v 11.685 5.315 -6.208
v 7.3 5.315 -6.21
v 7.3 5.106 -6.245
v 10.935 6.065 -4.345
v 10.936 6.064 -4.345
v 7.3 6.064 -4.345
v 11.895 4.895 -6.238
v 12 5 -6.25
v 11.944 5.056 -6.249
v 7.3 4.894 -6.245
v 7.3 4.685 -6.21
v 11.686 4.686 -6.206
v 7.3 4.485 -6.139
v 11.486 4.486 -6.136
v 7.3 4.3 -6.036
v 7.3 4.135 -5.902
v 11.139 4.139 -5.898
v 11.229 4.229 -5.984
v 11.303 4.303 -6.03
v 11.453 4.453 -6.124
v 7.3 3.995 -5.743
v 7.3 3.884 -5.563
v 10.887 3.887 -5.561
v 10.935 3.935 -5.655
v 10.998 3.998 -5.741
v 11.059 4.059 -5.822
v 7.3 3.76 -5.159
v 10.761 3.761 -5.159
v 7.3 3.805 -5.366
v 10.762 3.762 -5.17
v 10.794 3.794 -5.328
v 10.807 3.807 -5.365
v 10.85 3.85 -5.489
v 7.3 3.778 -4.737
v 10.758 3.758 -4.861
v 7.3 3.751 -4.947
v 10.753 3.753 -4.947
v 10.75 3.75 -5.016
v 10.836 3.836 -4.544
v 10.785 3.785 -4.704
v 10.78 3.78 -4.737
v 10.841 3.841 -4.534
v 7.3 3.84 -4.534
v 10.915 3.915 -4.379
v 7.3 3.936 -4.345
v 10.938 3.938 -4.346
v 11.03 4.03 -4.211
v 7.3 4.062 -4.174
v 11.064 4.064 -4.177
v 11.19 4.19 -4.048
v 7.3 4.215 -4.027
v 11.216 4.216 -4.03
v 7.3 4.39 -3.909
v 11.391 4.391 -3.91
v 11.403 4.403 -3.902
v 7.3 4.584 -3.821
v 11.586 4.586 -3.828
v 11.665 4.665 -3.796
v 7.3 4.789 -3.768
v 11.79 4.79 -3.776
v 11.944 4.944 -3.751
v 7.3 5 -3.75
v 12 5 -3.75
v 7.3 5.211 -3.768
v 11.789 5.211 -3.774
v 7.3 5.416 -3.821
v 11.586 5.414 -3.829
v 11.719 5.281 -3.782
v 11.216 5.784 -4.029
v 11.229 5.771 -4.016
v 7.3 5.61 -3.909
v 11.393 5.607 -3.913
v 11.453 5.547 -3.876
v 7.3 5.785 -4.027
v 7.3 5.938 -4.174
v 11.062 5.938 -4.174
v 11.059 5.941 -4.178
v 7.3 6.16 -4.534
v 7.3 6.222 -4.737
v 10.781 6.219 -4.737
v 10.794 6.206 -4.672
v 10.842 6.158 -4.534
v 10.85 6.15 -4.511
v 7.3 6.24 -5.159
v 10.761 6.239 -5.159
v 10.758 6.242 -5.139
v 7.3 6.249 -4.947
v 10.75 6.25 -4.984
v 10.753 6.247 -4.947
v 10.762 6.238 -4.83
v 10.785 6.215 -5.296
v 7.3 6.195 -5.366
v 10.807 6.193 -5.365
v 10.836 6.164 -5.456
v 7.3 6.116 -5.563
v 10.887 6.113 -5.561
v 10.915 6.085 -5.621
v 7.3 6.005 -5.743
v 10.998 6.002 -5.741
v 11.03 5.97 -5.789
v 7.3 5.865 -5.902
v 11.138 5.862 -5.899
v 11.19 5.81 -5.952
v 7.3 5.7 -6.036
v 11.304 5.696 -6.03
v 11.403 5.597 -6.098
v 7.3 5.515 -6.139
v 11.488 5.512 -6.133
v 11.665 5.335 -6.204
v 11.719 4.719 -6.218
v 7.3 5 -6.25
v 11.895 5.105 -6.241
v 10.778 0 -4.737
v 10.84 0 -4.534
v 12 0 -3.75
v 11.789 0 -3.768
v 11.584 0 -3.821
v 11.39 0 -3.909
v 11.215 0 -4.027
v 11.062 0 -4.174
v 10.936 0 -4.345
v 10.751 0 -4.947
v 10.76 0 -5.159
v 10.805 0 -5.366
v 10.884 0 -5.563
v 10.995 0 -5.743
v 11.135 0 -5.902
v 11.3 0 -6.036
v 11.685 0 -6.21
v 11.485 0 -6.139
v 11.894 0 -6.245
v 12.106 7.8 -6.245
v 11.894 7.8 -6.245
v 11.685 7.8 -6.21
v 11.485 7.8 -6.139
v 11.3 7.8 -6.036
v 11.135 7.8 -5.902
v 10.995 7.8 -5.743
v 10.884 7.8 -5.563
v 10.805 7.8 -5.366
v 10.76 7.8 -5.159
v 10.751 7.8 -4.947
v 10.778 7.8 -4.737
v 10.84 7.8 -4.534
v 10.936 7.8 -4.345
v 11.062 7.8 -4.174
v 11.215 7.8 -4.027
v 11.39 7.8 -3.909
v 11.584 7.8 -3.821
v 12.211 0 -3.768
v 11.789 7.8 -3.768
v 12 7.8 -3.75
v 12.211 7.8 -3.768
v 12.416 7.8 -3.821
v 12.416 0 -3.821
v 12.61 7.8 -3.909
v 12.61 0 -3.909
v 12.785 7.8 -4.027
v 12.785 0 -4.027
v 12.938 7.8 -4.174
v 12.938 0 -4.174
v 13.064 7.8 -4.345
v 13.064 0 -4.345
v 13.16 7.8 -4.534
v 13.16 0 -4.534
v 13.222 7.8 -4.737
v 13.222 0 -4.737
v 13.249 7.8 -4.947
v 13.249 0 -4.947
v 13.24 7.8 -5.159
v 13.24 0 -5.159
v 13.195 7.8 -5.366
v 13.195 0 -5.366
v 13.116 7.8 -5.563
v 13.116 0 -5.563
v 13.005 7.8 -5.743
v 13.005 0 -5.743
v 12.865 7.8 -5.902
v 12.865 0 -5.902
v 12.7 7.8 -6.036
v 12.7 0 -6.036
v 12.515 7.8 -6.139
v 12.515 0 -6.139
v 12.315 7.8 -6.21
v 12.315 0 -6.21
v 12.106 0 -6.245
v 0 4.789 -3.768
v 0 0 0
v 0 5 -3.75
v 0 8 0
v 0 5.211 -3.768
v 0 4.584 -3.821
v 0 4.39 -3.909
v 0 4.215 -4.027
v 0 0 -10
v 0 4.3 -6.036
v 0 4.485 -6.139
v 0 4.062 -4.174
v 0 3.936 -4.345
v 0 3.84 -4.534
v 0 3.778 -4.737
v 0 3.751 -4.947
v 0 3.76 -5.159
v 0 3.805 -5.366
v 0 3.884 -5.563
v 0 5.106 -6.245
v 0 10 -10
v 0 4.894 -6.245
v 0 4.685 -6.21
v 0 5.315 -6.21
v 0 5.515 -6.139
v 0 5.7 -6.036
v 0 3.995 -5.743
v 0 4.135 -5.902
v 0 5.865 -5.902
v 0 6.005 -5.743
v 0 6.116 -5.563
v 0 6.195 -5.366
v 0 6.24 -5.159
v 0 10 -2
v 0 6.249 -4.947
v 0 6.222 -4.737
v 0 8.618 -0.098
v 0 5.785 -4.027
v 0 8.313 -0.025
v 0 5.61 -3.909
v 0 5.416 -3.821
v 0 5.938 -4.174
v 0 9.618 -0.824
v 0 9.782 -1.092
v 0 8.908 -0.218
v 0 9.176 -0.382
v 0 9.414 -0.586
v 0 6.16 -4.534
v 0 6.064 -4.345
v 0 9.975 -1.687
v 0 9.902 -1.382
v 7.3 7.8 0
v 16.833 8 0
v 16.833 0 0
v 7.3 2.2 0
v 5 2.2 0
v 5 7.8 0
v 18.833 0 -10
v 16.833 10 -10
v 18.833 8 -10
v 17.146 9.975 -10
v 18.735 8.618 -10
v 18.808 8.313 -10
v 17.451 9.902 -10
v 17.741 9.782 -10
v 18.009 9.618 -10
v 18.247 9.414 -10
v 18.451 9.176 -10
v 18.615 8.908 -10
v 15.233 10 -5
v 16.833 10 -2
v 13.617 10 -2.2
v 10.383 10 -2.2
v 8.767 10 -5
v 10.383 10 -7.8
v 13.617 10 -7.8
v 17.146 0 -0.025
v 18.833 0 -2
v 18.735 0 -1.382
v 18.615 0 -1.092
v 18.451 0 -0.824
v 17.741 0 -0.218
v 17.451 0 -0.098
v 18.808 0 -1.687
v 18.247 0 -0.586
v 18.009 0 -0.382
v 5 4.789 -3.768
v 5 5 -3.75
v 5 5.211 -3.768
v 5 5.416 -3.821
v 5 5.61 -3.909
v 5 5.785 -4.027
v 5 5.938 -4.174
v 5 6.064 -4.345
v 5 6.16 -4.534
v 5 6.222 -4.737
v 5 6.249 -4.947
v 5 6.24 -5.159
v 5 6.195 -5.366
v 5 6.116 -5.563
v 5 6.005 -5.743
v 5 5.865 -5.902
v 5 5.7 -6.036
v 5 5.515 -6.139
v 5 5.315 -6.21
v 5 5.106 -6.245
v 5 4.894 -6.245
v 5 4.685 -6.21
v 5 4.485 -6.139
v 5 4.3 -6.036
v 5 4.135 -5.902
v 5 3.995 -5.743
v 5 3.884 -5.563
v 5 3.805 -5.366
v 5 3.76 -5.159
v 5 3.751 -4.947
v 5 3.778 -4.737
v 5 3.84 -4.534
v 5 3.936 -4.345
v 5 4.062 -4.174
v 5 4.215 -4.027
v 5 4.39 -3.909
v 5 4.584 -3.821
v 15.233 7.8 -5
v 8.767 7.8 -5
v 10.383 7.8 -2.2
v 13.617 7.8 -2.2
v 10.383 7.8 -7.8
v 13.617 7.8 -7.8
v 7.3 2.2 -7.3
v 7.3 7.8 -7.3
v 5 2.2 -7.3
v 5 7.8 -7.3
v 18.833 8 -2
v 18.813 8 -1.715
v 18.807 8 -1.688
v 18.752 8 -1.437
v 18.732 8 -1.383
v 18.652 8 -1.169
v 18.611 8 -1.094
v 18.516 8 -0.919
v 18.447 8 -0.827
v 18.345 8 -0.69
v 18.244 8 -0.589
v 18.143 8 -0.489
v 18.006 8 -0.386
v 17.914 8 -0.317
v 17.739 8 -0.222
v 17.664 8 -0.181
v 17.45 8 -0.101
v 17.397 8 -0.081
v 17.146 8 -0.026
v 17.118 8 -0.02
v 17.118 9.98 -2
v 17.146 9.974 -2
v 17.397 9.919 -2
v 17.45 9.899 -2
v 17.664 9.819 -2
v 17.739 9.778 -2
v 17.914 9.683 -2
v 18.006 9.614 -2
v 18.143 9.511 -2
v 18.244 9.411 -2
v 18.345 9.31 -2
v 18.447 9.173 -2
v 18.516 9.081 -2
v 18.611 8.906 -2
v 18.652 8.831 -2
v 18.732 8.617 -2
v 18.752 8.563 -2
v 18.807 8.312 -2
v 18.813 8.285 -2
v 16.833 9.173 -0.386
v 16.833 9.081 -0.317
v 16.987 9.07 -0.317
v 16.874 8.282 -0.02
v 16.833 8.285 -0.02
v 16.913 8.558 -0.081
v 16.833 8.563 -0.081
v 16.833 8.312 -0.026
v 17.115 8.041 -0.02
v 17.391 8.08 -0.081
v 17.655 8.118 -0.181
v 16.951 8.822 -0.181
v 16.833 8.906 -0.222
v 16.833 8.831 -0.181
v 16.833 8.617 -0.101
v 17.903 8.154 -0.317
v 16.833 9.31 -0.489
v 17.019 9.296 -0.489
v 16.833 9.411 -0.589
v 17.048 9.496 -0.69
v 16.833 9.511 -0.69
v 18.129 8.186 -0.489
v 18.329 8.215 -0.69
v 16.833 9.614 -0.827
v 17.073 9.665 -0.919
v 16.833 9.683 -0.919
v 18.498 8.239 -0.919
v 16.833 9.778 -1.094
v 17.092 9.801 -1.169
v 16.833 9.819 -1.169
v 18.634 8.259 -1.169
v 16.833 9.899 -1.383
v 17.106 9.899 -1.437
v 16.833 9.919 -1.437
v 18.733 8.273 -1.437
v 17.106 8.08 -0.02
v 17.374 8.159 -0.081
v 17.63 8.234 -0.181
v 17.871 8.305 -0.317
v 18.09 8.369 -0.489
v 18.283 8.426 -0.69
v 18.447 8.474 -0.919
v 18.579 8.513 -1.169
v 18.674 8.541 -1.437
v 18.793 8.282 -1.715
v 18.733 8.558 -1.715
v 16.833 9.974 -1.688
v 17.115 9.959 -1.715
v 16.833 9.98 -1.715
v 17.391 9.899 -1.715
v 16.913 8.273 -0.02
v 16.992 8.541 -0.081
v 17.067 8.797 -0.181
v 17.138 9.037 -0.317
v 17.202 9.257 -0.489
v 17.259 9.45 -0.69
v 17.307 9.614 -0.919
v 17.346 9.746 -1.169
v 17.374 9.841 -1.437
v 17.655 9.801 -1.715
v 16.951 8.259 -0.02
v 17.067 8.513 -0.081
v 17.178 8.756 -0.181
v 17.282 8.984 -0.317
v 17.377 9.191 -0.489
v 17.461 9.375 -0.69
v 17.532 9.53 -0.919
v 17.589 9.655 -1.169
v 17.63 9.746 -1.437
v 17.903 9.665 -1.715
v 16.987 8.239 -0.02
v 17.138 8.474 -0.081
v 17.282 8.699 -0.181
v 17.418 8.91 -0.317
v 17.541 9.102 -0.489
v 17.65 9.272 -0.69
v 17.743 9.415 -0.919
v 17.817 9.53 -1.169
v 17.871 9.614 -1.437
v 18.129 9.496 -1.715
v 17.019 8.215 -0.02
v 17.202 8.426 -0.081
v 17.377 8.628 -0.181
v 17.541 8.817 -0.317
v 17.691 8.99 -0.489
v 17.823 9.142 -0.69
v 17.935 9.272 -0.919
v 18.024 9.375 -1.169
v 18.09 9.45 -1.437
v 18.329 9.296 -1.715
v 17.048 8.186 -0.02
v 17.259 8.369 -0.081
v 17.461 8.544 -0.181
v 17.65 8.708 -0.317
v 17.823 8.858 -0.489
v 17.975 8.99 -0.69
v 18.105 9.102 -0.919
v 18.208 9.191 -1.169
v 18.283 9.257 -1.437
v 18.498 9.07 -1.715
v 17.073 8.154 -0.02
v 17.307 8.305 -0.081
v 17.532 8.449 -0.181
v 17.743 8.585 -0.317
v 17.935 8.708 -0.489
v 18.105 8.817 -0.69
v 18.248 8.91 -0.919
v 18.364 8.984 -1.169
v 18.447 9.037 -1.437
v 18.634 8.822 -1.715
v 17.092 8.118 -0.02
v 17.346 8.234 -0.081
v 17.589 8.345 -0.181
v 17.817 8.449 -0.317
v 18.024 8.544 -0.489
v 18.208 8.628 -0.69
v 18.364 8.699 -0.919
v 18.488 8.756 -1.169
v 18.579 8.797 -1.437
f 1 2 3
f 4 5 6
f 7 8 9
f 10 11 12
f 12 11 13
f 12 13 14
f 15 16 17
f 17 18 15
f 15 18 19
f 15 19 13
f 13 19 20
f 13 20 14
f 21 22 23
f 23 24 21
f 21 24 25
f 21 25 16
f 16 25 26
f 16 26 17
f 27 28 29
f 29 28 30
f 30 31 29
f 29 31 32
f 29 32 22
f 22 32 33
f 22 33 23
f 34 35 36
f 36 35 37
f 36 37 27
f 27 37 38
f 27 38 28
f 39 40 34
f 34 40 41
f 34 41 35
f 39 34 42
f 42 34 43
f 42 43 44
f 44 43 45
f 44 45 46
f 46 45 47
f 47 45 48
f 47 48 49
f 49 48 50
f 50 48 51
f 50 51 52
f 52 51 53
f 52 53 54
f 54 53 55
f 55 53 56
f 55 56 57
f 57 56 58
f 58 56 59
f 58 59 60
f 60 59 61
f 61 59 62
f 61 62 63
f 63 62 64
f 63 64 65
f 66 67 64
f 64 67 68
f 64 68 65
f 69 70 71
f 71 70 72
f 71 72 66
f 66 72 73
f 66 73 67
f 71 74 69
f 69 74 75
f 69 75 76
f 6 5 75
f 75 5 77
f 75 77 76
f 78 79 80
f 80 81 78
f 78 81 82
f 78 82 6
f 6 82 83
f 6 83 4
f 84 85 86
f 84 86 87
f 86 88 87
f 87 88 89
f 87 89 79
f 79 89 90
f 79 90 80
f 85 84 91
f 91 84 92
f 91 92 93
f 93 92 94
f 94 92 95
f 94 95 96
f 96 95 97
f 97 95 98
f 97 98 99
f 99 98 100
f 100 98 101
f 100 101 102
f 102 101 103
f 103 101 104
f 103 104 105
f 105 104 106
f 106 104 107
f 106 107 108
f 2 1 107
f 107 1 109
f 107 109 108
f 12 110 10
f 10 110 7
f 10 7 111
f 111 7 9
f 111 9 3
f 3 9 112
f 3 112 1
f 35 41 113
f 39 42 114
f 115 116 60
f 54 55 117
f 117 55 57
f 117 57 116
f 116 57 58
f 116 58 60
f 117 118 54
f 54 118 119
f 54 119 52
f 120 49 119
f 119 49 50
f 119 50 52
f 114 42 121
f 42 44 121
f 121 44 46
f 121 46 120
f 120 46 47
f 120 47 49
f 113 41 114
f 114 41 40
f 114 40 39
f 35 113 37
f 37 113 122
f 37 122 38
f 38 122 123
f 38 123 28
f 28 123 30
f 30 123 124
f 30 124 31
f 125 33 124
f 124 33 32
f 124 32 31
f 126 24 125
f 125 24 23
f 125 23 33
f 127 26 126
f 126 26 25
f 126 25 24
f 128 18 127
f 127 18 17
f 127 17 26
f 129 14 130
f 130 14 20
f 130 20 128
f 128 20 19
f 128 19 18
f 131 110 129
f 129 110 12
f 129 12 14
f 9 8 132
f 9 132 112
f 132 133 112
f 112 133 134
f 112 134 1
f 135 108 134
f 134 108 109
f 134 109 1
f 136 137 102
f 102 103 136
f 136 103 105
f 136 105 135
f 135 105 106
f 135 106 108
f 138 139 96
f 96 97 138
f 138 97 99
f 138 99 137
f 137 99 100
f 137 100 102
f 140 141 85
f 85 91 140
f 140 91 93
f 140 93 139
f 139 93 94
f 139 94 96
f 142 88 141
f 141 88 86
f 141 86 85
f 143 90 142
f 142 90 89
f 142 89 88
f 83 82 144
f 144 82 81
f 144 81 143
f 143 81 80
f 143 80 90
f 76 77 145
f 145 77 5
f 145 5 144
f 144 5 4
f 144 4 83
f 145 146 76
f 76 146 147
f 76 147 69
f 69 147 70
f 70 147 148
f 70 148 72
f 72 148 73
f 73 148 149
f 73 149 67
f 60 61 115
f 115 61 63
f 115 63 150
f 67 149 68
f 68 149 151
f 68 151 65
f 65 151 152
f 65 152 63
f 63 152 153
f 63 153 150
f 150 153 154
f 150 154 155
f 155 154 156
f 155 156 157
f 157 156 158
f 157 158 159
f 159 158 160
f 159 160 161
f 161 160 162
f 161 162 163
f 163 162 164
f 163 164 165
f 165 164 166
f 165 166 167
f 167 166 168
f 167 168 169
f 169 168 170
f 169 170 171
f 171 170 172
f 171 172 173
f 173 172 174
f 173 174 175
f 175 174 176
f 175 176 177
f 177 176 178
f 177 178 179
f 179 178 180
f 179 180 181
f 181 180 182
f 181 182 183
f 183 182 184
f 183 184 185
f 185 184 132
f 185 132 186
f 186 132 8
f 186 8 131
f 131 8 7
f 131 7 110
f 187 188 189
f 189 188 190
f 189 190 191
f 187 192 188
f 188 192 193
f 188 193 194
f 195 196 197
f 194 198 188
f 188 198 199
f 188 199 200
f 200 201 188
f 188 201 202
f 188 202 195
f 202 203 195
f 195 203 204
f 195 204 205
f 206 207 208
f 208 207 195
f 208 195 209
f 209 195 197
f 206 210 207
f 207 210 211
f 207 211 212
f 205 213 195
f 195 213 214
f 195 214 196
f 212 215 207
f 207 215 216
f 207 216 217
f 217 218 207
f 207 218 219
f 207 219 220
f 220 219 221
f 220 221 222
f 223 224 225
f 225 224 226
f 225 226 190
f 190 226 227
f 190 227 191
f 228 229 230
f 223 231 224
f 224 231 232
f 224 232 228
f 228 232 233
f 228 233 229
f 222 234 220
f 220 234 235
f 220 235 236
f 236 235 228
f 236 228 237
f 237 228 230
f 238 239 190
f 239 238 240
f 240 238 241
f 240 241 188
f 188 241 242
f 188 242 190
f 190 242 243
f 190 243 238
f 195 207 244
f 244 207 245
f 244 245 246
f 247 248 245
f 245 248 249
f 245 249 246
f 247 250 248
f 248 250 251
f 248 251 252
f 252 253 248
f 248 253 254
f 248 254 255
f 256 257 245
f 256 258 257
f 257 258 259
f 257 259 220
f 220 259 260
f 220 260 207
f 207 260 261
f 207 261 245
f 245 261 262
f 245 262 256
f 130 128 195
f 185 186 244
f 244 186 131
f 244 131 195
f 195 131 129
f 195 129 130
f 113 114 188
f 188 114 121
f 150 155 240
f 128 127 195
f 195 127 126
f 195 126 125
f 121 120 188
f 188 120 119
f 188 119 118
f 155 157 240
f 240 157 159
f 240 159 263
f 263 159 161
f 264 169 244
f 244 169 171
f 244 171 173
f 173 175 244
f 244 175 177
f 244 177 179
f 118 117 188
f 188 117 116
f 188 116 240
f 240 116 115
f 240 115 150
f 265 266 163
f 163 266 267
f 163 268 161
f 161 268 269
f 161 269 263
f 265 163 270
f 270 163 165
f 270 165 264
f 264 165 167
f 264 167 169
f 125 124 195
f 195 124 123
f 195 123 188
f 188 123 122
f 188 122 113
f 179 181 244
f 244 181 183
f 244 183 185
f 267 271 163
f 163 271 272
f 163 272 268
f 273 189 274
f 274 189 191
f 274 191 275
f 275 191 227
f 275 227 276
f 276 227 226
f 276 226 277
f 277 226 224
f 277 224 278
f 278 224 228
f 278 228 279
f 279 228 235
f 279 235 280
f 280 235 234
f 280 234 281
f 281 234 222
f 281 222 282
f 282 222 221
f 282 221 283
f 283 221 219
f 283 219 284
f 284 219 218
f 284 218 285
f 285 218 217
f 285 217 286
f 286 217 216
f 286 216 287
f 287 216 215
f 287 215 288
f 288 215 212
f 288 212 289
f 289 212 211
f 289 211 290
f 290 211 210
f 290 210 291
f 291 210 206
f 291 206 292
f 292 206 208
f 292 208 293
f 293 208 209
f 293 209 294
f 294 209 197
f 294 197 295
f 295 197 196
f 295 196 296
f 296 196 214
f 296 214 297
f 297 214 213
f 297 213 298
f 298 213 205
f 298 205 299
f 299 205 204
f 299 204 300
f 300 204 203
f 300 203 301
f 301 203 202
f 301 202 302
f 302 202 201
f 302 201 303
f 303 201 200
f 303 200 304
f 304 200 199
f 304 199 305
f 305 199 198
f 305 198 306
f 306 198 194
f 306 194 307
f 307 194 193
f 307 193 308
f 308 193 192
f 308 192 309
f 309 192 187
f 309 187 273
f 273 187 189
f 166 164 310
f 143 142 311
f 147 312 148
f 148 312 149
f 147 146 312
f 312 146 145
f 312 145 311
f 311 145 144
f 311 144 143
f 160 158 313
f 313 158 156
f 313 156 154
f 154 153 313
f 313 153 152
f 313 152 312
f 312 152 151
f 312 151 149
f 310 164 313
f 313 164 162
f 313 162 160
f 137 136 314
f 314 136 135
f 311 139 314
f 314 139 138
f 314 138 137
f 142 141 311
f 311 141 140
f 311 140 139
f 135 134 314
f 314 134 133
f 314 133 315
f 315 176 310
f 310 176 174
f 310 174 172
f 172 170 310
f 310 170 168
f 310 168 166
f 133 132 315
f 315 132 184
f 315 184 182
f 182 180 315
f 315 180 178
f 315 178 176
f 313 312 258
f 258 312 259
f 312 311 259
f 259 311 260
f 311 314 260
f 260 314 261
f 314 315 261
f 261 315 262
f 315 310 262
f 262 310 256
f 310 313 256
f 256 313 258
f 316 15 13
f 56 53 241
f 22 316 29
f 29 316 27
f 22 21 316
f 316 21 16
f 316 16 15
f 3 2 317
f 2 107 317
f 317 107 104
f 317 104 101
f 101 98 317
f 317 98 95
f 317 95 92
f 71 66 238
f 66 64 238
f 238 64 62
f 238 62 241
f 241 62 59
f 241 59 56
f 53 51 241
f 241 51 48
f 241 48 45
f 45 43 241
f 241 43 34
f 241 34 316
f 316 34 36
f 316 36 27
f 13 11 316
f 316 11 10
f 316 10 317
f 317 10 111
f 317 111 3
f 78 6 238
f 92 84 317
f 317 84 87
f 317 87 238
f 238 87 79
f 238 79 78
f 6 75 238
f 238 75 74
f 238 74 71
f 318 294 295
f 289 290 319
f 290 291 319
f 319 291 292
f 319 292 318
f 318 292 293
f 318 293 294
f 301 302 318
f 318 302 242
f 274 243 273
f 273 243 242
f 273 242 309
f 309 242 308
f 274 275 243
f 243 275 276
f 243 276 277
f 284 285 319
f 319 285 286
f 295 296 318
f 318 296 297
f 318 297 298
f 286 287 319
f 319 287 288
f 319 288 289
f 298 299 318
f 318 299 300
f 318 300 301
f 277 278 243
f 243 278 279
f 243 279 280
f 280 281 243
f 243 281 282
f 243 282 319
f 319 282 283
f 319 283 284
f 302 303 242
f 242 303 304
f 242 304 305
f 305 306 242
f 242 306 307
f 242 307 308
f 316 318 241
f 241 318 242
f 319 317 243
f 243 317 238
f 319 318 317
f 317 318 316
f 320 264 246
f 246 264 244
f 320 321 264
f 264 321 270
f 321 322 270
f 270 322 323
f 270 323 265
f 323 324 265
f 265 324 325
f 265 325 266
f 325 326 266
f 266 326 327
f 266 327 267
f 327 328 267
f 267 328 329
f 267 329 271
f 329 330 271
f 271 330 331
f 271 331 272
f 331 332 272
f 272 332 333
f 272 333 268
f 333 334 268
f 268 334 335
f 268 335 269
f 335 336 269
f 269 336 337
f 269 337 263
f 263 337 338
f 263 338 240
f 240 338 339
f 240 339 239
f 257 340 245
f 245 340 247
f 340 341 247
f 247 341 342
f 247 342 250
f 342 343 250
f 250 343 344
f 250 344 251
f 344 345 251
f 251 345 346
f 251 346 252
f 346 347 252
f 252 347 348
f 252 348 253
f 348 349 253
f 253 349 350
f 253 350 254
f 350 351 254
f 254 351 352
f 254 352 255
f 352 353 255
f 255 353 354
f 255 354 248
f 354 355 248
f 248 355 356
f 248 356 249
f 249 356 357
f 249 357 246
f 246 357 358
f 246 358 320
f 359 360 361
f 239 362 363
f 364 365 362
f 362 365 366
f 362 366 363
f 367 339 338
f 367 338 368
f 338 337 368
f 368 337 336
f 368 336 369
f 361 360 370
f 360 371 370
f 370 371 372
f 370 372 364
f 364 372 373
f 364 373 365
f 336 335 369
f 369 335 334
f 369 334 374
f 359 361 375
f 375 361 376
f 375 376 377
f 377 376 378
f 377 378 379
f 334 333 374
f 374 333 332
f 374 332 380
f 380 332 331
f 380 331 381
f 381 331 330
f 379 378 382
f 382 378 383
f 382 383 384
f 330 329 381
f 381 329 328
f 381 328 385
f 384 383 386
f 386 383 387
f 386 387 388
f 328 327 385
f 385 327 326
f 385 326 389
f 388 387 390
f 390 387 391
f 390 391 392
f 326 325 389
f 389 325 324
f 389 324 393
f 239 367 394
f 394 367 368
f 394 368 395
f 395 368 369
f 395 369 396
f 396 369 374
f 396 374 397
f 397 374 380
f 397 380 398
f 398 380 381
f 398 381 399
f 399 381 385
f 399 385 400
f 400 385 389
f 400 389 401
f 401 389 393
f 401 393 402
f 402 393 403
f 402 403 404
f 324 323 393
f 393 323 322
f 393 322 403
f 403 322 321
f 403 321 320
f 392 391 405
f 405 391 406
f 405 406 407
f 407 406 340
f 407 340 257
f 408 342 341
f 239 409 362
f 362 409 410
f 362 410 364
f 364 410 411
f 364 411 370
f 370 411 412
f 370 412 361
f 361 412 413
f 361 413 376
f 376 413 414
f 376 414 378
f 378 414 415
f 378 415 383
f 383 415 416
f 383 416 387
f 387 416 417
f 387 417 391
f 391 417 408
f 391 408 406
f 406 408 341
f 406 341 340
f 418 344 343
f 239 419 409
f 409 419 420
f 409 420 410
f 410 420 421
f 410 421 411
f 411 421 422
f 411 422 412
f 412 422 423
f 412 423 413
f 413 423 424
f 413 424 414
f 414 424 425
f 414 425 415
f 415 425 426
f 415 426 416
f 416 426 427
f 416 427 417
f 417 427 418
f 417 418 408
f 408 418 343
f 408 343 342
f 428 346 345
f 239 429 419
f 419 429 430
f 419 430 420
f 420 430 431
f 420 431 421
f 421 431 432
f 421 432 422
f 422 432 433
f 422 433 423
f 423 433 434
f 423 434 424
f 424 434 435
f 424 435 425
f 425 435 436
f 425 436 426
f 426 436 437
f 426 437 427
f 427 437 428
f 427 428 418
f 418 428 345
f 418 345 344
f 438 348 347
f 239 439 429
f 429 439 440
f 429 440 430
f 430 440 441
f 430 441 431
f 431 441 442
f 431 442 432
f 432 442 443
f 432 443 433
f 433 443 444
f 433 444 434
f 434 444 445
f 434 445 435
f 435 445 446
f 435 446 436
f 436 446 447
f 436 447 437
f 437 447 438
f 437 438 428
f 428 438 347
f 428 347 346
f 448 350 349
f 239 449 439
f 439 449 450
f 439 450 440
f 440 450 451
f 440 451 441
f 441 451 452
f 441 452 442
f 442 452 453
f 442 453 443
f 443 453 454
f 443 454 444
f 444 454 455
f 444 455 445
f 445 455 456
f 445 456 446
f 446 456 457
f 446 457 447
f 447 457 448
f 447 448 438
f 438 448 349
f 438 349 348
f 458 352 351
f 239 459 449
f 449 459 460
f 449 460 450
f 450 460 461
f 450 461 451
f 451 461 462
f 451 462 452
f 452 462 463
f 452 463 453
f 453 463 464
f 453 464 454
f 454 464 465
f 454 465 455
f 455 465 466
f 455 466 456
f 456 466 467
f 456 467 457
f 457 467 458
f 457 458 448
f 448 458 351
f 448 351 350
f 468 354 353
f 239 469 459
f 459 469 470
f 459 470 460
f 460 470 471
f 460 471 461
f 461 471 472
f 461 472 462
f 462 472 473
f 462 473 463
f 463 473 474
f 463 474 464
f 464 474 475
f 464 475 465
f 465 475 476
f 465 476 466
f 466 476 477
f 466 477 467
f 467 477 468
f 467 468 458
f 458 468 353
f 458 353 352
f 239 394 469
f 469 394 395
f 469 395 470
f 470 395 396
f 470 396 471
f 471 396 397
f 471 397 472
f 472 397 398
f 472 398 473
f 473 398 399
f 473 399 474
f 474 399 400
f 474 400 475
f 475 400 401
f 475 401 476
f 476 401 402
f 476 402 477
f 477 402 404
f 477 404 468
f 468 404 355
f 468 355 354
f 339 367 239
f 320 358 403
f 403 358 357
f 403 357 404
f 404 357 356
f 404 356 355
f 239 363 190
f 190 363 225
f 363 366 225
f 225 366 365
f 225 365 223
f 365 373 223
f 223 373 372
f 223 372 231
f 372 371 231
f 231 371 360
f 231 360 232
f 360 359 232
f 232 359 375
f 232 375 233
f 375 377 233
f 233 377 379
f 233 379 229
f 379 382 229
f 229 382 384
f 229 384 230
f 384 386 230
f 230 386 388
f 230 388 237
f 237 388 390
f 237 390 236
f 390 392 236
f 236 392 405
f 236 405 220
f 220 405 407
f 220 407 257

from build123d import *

# Parameters (mm, degrees)
SKETCH1_W           = 74.5
SKETCH1_H           = 10
BOSS_EXTRUDE1_DEPTH = 10
SKETCH2_R           = 1.25
CUT_EXTRUDE1_DEPTH  = 10
SKETCH4_R           = 1.25
CUT_EXTRUDE3_DEPTH  = 5
CUT_EXTRUDE4_START  = -12
SKETCH5_R           = 1.25
CUT_EXTRUDE4_DEPTH  = 12
CUT_EXTRUDE5_DEPTH  = 2.2
CUT_EXTRUDE6_DEPTH  = 2.2
SKETCH11_W          = 2.3
SKETCH11_H          = 5.6
CUT_EXTRUDE9_DEPTH  = 7.3
SKETCH12_W          = 92.79599186
SKETCH12_H          = 35.188487641
CUT_EXTRUDE10_DEPTH = 14
SKETCH13_W          = 8.109024166
SKETCH13_H          = 12.314563919
CUT_EXTRUDE11_DEPTH = 12
FILLET2_R           = 2
FILLET3_R           = 2


with BuildPart() as part:
    # Sketch1 → Boss-Extrude1 (new body)
    with BuildSketch(Plane(origin=(0, 0, 0), x_dir=(1, 0, 0), z_dir=(0, 1, 0))):
        with Locations((37.25, 5)):
            Rectangle(SKETCH1_W, SKETCH1_H)
    extrude(amount=BOSS_EXTRUDE1_DEPTH)

    # Sketch2 → Cut-Extrude1 (cut)
    with BuildSketch(Plane(origin=(0, 10, 0), x_dir=(1, 0, 0), z_dir=(0, 1, 0))):
        with Locations(Location((12, 5, 0), (0, 0, 270))):
            Circle(SKETCH2_R)
        with Locations(Location((62.5, 5, 0), (0, 0, 270))):
            Circle(SKETCH2_R)
    extrude(amount=-CUT_EXTRUDE1_DEPTH, mode=Mode.SUBTRACT)

    # Sketch4 → Cut-Extrude3 (cut)
    with BuildSketch(Plane(origin=(74.5, 0, 0), x_dir=(0, 0, -1), z_dir=(1, 0, 0))):
        with Locations((5, 5)):
            Circle(SKETCH4_R)
    extrude(amount=-CUT_EXTRUDE3_DEPTH, mode=Mode.SUBTRACT)

    # Sketch5 → Cut-Extrude4 (cut)
    with BuildSketch(Plane.ZY.offset(CUT_EXTRUDE4_START)):
        with Locations(Location((-5, 5, 0), (0, 0, 180))):
            Circle(SKETCH5_R)
    extrude(amount=CUT_EXTRUDE4_DEPTH, mode=Mode.SUBTRACT)

    # Sketch6 → Cut-Extrude5 (cut)
    with BuildSketch(Plane(origin=(0, 10, 0), x_dir=(1, 0, 0), z_dir=(0, 1, 0))):
        Polygon((13.616580754, 2.2), (15.233161507, 5), (13.616580754, 7.8), (10.383419246, 7.8), (8.766838493, 5), (10.383419246, 2.2), align=None)
    extrude(amount=-CUT_EXTRUDE5_DEPTH, mode=Mode.SUBTRACT)

    # Sketch7 → Cut-Extrude6 (cut)
    with BuildSketch(Plane(origin=(0, 10, 0), x_dir=(1, 0, 0), z_dir=(0, 1, 0))):
        Polygon((60.883419246, 7.8), (59.266838493, 5), (60.883419246, 2.2), (64.116580754, 2.2), (65.733161507, 5), (64.116580754, 7.8), align=None)
    extrude(amount=-CUT_EXTRUDE6_DEPTH, mode=Mode.SUBTRACT)

    # Sketch11 → Cut-Extrude9 (cut)
    with BuildSketch(Plane.XY):
        with Locations((6.15, 5)):
            Rectangle(SKETCH11_W, SKETCH11_H)
        with Locations((68.35, 5)):
            Rectangle(SKETCH11_W, SKETCH11_H)
    extrude(amount=-CUT_EXTRUDE9_DEPTH, mode=Mode.SUBTRACT)

    # Sketch12 → Cut-Extrude10 (cut)
    with BuildSketch(Plane.XY):
        with Locations((72.539564665, 12.110455679)):
            Rectangle(SKETCH12_W, SKETCH12_H)
    extrude(amount=-CUT_EXTRUDE10_DEPTH, mode=Mode.SUBTRACT)

    # Sketch13 → Cut-Extrude11 (cut)
    with BuildSketch(Plane(origin=(0, 10, 0), x_dir=(1, 0, 0), z_dir=(0, 1, 0))):
        with Locations((22.887582964, 5.058087566)):
            Rectangle(SKETCH13_W, SKETCH13_H)
    extrude(amount=-CUT_EXTRUDE11_DEPTH, mode=Mode.SUBTRACT)

    # Fillet2
    fillet2_edges = [part.edges().sort_by_distance(p)[0] for p in [
        (18.833070881, 5, 0),
    ]]
    fillet(fillet2_edges, radius=FILLET2_R)

    # Fillet3
    fillet3_edges = [part.edges().sort_by_distance(p)[0] for p in [
        (18.833070881, 10, -6),
        (18.247284443, 10, -0.585786438),
        (8.416535441, 10, 0),
    ]]
    fillet(fillet3_edges, radius=FILLET3_R)


solid = part.part
